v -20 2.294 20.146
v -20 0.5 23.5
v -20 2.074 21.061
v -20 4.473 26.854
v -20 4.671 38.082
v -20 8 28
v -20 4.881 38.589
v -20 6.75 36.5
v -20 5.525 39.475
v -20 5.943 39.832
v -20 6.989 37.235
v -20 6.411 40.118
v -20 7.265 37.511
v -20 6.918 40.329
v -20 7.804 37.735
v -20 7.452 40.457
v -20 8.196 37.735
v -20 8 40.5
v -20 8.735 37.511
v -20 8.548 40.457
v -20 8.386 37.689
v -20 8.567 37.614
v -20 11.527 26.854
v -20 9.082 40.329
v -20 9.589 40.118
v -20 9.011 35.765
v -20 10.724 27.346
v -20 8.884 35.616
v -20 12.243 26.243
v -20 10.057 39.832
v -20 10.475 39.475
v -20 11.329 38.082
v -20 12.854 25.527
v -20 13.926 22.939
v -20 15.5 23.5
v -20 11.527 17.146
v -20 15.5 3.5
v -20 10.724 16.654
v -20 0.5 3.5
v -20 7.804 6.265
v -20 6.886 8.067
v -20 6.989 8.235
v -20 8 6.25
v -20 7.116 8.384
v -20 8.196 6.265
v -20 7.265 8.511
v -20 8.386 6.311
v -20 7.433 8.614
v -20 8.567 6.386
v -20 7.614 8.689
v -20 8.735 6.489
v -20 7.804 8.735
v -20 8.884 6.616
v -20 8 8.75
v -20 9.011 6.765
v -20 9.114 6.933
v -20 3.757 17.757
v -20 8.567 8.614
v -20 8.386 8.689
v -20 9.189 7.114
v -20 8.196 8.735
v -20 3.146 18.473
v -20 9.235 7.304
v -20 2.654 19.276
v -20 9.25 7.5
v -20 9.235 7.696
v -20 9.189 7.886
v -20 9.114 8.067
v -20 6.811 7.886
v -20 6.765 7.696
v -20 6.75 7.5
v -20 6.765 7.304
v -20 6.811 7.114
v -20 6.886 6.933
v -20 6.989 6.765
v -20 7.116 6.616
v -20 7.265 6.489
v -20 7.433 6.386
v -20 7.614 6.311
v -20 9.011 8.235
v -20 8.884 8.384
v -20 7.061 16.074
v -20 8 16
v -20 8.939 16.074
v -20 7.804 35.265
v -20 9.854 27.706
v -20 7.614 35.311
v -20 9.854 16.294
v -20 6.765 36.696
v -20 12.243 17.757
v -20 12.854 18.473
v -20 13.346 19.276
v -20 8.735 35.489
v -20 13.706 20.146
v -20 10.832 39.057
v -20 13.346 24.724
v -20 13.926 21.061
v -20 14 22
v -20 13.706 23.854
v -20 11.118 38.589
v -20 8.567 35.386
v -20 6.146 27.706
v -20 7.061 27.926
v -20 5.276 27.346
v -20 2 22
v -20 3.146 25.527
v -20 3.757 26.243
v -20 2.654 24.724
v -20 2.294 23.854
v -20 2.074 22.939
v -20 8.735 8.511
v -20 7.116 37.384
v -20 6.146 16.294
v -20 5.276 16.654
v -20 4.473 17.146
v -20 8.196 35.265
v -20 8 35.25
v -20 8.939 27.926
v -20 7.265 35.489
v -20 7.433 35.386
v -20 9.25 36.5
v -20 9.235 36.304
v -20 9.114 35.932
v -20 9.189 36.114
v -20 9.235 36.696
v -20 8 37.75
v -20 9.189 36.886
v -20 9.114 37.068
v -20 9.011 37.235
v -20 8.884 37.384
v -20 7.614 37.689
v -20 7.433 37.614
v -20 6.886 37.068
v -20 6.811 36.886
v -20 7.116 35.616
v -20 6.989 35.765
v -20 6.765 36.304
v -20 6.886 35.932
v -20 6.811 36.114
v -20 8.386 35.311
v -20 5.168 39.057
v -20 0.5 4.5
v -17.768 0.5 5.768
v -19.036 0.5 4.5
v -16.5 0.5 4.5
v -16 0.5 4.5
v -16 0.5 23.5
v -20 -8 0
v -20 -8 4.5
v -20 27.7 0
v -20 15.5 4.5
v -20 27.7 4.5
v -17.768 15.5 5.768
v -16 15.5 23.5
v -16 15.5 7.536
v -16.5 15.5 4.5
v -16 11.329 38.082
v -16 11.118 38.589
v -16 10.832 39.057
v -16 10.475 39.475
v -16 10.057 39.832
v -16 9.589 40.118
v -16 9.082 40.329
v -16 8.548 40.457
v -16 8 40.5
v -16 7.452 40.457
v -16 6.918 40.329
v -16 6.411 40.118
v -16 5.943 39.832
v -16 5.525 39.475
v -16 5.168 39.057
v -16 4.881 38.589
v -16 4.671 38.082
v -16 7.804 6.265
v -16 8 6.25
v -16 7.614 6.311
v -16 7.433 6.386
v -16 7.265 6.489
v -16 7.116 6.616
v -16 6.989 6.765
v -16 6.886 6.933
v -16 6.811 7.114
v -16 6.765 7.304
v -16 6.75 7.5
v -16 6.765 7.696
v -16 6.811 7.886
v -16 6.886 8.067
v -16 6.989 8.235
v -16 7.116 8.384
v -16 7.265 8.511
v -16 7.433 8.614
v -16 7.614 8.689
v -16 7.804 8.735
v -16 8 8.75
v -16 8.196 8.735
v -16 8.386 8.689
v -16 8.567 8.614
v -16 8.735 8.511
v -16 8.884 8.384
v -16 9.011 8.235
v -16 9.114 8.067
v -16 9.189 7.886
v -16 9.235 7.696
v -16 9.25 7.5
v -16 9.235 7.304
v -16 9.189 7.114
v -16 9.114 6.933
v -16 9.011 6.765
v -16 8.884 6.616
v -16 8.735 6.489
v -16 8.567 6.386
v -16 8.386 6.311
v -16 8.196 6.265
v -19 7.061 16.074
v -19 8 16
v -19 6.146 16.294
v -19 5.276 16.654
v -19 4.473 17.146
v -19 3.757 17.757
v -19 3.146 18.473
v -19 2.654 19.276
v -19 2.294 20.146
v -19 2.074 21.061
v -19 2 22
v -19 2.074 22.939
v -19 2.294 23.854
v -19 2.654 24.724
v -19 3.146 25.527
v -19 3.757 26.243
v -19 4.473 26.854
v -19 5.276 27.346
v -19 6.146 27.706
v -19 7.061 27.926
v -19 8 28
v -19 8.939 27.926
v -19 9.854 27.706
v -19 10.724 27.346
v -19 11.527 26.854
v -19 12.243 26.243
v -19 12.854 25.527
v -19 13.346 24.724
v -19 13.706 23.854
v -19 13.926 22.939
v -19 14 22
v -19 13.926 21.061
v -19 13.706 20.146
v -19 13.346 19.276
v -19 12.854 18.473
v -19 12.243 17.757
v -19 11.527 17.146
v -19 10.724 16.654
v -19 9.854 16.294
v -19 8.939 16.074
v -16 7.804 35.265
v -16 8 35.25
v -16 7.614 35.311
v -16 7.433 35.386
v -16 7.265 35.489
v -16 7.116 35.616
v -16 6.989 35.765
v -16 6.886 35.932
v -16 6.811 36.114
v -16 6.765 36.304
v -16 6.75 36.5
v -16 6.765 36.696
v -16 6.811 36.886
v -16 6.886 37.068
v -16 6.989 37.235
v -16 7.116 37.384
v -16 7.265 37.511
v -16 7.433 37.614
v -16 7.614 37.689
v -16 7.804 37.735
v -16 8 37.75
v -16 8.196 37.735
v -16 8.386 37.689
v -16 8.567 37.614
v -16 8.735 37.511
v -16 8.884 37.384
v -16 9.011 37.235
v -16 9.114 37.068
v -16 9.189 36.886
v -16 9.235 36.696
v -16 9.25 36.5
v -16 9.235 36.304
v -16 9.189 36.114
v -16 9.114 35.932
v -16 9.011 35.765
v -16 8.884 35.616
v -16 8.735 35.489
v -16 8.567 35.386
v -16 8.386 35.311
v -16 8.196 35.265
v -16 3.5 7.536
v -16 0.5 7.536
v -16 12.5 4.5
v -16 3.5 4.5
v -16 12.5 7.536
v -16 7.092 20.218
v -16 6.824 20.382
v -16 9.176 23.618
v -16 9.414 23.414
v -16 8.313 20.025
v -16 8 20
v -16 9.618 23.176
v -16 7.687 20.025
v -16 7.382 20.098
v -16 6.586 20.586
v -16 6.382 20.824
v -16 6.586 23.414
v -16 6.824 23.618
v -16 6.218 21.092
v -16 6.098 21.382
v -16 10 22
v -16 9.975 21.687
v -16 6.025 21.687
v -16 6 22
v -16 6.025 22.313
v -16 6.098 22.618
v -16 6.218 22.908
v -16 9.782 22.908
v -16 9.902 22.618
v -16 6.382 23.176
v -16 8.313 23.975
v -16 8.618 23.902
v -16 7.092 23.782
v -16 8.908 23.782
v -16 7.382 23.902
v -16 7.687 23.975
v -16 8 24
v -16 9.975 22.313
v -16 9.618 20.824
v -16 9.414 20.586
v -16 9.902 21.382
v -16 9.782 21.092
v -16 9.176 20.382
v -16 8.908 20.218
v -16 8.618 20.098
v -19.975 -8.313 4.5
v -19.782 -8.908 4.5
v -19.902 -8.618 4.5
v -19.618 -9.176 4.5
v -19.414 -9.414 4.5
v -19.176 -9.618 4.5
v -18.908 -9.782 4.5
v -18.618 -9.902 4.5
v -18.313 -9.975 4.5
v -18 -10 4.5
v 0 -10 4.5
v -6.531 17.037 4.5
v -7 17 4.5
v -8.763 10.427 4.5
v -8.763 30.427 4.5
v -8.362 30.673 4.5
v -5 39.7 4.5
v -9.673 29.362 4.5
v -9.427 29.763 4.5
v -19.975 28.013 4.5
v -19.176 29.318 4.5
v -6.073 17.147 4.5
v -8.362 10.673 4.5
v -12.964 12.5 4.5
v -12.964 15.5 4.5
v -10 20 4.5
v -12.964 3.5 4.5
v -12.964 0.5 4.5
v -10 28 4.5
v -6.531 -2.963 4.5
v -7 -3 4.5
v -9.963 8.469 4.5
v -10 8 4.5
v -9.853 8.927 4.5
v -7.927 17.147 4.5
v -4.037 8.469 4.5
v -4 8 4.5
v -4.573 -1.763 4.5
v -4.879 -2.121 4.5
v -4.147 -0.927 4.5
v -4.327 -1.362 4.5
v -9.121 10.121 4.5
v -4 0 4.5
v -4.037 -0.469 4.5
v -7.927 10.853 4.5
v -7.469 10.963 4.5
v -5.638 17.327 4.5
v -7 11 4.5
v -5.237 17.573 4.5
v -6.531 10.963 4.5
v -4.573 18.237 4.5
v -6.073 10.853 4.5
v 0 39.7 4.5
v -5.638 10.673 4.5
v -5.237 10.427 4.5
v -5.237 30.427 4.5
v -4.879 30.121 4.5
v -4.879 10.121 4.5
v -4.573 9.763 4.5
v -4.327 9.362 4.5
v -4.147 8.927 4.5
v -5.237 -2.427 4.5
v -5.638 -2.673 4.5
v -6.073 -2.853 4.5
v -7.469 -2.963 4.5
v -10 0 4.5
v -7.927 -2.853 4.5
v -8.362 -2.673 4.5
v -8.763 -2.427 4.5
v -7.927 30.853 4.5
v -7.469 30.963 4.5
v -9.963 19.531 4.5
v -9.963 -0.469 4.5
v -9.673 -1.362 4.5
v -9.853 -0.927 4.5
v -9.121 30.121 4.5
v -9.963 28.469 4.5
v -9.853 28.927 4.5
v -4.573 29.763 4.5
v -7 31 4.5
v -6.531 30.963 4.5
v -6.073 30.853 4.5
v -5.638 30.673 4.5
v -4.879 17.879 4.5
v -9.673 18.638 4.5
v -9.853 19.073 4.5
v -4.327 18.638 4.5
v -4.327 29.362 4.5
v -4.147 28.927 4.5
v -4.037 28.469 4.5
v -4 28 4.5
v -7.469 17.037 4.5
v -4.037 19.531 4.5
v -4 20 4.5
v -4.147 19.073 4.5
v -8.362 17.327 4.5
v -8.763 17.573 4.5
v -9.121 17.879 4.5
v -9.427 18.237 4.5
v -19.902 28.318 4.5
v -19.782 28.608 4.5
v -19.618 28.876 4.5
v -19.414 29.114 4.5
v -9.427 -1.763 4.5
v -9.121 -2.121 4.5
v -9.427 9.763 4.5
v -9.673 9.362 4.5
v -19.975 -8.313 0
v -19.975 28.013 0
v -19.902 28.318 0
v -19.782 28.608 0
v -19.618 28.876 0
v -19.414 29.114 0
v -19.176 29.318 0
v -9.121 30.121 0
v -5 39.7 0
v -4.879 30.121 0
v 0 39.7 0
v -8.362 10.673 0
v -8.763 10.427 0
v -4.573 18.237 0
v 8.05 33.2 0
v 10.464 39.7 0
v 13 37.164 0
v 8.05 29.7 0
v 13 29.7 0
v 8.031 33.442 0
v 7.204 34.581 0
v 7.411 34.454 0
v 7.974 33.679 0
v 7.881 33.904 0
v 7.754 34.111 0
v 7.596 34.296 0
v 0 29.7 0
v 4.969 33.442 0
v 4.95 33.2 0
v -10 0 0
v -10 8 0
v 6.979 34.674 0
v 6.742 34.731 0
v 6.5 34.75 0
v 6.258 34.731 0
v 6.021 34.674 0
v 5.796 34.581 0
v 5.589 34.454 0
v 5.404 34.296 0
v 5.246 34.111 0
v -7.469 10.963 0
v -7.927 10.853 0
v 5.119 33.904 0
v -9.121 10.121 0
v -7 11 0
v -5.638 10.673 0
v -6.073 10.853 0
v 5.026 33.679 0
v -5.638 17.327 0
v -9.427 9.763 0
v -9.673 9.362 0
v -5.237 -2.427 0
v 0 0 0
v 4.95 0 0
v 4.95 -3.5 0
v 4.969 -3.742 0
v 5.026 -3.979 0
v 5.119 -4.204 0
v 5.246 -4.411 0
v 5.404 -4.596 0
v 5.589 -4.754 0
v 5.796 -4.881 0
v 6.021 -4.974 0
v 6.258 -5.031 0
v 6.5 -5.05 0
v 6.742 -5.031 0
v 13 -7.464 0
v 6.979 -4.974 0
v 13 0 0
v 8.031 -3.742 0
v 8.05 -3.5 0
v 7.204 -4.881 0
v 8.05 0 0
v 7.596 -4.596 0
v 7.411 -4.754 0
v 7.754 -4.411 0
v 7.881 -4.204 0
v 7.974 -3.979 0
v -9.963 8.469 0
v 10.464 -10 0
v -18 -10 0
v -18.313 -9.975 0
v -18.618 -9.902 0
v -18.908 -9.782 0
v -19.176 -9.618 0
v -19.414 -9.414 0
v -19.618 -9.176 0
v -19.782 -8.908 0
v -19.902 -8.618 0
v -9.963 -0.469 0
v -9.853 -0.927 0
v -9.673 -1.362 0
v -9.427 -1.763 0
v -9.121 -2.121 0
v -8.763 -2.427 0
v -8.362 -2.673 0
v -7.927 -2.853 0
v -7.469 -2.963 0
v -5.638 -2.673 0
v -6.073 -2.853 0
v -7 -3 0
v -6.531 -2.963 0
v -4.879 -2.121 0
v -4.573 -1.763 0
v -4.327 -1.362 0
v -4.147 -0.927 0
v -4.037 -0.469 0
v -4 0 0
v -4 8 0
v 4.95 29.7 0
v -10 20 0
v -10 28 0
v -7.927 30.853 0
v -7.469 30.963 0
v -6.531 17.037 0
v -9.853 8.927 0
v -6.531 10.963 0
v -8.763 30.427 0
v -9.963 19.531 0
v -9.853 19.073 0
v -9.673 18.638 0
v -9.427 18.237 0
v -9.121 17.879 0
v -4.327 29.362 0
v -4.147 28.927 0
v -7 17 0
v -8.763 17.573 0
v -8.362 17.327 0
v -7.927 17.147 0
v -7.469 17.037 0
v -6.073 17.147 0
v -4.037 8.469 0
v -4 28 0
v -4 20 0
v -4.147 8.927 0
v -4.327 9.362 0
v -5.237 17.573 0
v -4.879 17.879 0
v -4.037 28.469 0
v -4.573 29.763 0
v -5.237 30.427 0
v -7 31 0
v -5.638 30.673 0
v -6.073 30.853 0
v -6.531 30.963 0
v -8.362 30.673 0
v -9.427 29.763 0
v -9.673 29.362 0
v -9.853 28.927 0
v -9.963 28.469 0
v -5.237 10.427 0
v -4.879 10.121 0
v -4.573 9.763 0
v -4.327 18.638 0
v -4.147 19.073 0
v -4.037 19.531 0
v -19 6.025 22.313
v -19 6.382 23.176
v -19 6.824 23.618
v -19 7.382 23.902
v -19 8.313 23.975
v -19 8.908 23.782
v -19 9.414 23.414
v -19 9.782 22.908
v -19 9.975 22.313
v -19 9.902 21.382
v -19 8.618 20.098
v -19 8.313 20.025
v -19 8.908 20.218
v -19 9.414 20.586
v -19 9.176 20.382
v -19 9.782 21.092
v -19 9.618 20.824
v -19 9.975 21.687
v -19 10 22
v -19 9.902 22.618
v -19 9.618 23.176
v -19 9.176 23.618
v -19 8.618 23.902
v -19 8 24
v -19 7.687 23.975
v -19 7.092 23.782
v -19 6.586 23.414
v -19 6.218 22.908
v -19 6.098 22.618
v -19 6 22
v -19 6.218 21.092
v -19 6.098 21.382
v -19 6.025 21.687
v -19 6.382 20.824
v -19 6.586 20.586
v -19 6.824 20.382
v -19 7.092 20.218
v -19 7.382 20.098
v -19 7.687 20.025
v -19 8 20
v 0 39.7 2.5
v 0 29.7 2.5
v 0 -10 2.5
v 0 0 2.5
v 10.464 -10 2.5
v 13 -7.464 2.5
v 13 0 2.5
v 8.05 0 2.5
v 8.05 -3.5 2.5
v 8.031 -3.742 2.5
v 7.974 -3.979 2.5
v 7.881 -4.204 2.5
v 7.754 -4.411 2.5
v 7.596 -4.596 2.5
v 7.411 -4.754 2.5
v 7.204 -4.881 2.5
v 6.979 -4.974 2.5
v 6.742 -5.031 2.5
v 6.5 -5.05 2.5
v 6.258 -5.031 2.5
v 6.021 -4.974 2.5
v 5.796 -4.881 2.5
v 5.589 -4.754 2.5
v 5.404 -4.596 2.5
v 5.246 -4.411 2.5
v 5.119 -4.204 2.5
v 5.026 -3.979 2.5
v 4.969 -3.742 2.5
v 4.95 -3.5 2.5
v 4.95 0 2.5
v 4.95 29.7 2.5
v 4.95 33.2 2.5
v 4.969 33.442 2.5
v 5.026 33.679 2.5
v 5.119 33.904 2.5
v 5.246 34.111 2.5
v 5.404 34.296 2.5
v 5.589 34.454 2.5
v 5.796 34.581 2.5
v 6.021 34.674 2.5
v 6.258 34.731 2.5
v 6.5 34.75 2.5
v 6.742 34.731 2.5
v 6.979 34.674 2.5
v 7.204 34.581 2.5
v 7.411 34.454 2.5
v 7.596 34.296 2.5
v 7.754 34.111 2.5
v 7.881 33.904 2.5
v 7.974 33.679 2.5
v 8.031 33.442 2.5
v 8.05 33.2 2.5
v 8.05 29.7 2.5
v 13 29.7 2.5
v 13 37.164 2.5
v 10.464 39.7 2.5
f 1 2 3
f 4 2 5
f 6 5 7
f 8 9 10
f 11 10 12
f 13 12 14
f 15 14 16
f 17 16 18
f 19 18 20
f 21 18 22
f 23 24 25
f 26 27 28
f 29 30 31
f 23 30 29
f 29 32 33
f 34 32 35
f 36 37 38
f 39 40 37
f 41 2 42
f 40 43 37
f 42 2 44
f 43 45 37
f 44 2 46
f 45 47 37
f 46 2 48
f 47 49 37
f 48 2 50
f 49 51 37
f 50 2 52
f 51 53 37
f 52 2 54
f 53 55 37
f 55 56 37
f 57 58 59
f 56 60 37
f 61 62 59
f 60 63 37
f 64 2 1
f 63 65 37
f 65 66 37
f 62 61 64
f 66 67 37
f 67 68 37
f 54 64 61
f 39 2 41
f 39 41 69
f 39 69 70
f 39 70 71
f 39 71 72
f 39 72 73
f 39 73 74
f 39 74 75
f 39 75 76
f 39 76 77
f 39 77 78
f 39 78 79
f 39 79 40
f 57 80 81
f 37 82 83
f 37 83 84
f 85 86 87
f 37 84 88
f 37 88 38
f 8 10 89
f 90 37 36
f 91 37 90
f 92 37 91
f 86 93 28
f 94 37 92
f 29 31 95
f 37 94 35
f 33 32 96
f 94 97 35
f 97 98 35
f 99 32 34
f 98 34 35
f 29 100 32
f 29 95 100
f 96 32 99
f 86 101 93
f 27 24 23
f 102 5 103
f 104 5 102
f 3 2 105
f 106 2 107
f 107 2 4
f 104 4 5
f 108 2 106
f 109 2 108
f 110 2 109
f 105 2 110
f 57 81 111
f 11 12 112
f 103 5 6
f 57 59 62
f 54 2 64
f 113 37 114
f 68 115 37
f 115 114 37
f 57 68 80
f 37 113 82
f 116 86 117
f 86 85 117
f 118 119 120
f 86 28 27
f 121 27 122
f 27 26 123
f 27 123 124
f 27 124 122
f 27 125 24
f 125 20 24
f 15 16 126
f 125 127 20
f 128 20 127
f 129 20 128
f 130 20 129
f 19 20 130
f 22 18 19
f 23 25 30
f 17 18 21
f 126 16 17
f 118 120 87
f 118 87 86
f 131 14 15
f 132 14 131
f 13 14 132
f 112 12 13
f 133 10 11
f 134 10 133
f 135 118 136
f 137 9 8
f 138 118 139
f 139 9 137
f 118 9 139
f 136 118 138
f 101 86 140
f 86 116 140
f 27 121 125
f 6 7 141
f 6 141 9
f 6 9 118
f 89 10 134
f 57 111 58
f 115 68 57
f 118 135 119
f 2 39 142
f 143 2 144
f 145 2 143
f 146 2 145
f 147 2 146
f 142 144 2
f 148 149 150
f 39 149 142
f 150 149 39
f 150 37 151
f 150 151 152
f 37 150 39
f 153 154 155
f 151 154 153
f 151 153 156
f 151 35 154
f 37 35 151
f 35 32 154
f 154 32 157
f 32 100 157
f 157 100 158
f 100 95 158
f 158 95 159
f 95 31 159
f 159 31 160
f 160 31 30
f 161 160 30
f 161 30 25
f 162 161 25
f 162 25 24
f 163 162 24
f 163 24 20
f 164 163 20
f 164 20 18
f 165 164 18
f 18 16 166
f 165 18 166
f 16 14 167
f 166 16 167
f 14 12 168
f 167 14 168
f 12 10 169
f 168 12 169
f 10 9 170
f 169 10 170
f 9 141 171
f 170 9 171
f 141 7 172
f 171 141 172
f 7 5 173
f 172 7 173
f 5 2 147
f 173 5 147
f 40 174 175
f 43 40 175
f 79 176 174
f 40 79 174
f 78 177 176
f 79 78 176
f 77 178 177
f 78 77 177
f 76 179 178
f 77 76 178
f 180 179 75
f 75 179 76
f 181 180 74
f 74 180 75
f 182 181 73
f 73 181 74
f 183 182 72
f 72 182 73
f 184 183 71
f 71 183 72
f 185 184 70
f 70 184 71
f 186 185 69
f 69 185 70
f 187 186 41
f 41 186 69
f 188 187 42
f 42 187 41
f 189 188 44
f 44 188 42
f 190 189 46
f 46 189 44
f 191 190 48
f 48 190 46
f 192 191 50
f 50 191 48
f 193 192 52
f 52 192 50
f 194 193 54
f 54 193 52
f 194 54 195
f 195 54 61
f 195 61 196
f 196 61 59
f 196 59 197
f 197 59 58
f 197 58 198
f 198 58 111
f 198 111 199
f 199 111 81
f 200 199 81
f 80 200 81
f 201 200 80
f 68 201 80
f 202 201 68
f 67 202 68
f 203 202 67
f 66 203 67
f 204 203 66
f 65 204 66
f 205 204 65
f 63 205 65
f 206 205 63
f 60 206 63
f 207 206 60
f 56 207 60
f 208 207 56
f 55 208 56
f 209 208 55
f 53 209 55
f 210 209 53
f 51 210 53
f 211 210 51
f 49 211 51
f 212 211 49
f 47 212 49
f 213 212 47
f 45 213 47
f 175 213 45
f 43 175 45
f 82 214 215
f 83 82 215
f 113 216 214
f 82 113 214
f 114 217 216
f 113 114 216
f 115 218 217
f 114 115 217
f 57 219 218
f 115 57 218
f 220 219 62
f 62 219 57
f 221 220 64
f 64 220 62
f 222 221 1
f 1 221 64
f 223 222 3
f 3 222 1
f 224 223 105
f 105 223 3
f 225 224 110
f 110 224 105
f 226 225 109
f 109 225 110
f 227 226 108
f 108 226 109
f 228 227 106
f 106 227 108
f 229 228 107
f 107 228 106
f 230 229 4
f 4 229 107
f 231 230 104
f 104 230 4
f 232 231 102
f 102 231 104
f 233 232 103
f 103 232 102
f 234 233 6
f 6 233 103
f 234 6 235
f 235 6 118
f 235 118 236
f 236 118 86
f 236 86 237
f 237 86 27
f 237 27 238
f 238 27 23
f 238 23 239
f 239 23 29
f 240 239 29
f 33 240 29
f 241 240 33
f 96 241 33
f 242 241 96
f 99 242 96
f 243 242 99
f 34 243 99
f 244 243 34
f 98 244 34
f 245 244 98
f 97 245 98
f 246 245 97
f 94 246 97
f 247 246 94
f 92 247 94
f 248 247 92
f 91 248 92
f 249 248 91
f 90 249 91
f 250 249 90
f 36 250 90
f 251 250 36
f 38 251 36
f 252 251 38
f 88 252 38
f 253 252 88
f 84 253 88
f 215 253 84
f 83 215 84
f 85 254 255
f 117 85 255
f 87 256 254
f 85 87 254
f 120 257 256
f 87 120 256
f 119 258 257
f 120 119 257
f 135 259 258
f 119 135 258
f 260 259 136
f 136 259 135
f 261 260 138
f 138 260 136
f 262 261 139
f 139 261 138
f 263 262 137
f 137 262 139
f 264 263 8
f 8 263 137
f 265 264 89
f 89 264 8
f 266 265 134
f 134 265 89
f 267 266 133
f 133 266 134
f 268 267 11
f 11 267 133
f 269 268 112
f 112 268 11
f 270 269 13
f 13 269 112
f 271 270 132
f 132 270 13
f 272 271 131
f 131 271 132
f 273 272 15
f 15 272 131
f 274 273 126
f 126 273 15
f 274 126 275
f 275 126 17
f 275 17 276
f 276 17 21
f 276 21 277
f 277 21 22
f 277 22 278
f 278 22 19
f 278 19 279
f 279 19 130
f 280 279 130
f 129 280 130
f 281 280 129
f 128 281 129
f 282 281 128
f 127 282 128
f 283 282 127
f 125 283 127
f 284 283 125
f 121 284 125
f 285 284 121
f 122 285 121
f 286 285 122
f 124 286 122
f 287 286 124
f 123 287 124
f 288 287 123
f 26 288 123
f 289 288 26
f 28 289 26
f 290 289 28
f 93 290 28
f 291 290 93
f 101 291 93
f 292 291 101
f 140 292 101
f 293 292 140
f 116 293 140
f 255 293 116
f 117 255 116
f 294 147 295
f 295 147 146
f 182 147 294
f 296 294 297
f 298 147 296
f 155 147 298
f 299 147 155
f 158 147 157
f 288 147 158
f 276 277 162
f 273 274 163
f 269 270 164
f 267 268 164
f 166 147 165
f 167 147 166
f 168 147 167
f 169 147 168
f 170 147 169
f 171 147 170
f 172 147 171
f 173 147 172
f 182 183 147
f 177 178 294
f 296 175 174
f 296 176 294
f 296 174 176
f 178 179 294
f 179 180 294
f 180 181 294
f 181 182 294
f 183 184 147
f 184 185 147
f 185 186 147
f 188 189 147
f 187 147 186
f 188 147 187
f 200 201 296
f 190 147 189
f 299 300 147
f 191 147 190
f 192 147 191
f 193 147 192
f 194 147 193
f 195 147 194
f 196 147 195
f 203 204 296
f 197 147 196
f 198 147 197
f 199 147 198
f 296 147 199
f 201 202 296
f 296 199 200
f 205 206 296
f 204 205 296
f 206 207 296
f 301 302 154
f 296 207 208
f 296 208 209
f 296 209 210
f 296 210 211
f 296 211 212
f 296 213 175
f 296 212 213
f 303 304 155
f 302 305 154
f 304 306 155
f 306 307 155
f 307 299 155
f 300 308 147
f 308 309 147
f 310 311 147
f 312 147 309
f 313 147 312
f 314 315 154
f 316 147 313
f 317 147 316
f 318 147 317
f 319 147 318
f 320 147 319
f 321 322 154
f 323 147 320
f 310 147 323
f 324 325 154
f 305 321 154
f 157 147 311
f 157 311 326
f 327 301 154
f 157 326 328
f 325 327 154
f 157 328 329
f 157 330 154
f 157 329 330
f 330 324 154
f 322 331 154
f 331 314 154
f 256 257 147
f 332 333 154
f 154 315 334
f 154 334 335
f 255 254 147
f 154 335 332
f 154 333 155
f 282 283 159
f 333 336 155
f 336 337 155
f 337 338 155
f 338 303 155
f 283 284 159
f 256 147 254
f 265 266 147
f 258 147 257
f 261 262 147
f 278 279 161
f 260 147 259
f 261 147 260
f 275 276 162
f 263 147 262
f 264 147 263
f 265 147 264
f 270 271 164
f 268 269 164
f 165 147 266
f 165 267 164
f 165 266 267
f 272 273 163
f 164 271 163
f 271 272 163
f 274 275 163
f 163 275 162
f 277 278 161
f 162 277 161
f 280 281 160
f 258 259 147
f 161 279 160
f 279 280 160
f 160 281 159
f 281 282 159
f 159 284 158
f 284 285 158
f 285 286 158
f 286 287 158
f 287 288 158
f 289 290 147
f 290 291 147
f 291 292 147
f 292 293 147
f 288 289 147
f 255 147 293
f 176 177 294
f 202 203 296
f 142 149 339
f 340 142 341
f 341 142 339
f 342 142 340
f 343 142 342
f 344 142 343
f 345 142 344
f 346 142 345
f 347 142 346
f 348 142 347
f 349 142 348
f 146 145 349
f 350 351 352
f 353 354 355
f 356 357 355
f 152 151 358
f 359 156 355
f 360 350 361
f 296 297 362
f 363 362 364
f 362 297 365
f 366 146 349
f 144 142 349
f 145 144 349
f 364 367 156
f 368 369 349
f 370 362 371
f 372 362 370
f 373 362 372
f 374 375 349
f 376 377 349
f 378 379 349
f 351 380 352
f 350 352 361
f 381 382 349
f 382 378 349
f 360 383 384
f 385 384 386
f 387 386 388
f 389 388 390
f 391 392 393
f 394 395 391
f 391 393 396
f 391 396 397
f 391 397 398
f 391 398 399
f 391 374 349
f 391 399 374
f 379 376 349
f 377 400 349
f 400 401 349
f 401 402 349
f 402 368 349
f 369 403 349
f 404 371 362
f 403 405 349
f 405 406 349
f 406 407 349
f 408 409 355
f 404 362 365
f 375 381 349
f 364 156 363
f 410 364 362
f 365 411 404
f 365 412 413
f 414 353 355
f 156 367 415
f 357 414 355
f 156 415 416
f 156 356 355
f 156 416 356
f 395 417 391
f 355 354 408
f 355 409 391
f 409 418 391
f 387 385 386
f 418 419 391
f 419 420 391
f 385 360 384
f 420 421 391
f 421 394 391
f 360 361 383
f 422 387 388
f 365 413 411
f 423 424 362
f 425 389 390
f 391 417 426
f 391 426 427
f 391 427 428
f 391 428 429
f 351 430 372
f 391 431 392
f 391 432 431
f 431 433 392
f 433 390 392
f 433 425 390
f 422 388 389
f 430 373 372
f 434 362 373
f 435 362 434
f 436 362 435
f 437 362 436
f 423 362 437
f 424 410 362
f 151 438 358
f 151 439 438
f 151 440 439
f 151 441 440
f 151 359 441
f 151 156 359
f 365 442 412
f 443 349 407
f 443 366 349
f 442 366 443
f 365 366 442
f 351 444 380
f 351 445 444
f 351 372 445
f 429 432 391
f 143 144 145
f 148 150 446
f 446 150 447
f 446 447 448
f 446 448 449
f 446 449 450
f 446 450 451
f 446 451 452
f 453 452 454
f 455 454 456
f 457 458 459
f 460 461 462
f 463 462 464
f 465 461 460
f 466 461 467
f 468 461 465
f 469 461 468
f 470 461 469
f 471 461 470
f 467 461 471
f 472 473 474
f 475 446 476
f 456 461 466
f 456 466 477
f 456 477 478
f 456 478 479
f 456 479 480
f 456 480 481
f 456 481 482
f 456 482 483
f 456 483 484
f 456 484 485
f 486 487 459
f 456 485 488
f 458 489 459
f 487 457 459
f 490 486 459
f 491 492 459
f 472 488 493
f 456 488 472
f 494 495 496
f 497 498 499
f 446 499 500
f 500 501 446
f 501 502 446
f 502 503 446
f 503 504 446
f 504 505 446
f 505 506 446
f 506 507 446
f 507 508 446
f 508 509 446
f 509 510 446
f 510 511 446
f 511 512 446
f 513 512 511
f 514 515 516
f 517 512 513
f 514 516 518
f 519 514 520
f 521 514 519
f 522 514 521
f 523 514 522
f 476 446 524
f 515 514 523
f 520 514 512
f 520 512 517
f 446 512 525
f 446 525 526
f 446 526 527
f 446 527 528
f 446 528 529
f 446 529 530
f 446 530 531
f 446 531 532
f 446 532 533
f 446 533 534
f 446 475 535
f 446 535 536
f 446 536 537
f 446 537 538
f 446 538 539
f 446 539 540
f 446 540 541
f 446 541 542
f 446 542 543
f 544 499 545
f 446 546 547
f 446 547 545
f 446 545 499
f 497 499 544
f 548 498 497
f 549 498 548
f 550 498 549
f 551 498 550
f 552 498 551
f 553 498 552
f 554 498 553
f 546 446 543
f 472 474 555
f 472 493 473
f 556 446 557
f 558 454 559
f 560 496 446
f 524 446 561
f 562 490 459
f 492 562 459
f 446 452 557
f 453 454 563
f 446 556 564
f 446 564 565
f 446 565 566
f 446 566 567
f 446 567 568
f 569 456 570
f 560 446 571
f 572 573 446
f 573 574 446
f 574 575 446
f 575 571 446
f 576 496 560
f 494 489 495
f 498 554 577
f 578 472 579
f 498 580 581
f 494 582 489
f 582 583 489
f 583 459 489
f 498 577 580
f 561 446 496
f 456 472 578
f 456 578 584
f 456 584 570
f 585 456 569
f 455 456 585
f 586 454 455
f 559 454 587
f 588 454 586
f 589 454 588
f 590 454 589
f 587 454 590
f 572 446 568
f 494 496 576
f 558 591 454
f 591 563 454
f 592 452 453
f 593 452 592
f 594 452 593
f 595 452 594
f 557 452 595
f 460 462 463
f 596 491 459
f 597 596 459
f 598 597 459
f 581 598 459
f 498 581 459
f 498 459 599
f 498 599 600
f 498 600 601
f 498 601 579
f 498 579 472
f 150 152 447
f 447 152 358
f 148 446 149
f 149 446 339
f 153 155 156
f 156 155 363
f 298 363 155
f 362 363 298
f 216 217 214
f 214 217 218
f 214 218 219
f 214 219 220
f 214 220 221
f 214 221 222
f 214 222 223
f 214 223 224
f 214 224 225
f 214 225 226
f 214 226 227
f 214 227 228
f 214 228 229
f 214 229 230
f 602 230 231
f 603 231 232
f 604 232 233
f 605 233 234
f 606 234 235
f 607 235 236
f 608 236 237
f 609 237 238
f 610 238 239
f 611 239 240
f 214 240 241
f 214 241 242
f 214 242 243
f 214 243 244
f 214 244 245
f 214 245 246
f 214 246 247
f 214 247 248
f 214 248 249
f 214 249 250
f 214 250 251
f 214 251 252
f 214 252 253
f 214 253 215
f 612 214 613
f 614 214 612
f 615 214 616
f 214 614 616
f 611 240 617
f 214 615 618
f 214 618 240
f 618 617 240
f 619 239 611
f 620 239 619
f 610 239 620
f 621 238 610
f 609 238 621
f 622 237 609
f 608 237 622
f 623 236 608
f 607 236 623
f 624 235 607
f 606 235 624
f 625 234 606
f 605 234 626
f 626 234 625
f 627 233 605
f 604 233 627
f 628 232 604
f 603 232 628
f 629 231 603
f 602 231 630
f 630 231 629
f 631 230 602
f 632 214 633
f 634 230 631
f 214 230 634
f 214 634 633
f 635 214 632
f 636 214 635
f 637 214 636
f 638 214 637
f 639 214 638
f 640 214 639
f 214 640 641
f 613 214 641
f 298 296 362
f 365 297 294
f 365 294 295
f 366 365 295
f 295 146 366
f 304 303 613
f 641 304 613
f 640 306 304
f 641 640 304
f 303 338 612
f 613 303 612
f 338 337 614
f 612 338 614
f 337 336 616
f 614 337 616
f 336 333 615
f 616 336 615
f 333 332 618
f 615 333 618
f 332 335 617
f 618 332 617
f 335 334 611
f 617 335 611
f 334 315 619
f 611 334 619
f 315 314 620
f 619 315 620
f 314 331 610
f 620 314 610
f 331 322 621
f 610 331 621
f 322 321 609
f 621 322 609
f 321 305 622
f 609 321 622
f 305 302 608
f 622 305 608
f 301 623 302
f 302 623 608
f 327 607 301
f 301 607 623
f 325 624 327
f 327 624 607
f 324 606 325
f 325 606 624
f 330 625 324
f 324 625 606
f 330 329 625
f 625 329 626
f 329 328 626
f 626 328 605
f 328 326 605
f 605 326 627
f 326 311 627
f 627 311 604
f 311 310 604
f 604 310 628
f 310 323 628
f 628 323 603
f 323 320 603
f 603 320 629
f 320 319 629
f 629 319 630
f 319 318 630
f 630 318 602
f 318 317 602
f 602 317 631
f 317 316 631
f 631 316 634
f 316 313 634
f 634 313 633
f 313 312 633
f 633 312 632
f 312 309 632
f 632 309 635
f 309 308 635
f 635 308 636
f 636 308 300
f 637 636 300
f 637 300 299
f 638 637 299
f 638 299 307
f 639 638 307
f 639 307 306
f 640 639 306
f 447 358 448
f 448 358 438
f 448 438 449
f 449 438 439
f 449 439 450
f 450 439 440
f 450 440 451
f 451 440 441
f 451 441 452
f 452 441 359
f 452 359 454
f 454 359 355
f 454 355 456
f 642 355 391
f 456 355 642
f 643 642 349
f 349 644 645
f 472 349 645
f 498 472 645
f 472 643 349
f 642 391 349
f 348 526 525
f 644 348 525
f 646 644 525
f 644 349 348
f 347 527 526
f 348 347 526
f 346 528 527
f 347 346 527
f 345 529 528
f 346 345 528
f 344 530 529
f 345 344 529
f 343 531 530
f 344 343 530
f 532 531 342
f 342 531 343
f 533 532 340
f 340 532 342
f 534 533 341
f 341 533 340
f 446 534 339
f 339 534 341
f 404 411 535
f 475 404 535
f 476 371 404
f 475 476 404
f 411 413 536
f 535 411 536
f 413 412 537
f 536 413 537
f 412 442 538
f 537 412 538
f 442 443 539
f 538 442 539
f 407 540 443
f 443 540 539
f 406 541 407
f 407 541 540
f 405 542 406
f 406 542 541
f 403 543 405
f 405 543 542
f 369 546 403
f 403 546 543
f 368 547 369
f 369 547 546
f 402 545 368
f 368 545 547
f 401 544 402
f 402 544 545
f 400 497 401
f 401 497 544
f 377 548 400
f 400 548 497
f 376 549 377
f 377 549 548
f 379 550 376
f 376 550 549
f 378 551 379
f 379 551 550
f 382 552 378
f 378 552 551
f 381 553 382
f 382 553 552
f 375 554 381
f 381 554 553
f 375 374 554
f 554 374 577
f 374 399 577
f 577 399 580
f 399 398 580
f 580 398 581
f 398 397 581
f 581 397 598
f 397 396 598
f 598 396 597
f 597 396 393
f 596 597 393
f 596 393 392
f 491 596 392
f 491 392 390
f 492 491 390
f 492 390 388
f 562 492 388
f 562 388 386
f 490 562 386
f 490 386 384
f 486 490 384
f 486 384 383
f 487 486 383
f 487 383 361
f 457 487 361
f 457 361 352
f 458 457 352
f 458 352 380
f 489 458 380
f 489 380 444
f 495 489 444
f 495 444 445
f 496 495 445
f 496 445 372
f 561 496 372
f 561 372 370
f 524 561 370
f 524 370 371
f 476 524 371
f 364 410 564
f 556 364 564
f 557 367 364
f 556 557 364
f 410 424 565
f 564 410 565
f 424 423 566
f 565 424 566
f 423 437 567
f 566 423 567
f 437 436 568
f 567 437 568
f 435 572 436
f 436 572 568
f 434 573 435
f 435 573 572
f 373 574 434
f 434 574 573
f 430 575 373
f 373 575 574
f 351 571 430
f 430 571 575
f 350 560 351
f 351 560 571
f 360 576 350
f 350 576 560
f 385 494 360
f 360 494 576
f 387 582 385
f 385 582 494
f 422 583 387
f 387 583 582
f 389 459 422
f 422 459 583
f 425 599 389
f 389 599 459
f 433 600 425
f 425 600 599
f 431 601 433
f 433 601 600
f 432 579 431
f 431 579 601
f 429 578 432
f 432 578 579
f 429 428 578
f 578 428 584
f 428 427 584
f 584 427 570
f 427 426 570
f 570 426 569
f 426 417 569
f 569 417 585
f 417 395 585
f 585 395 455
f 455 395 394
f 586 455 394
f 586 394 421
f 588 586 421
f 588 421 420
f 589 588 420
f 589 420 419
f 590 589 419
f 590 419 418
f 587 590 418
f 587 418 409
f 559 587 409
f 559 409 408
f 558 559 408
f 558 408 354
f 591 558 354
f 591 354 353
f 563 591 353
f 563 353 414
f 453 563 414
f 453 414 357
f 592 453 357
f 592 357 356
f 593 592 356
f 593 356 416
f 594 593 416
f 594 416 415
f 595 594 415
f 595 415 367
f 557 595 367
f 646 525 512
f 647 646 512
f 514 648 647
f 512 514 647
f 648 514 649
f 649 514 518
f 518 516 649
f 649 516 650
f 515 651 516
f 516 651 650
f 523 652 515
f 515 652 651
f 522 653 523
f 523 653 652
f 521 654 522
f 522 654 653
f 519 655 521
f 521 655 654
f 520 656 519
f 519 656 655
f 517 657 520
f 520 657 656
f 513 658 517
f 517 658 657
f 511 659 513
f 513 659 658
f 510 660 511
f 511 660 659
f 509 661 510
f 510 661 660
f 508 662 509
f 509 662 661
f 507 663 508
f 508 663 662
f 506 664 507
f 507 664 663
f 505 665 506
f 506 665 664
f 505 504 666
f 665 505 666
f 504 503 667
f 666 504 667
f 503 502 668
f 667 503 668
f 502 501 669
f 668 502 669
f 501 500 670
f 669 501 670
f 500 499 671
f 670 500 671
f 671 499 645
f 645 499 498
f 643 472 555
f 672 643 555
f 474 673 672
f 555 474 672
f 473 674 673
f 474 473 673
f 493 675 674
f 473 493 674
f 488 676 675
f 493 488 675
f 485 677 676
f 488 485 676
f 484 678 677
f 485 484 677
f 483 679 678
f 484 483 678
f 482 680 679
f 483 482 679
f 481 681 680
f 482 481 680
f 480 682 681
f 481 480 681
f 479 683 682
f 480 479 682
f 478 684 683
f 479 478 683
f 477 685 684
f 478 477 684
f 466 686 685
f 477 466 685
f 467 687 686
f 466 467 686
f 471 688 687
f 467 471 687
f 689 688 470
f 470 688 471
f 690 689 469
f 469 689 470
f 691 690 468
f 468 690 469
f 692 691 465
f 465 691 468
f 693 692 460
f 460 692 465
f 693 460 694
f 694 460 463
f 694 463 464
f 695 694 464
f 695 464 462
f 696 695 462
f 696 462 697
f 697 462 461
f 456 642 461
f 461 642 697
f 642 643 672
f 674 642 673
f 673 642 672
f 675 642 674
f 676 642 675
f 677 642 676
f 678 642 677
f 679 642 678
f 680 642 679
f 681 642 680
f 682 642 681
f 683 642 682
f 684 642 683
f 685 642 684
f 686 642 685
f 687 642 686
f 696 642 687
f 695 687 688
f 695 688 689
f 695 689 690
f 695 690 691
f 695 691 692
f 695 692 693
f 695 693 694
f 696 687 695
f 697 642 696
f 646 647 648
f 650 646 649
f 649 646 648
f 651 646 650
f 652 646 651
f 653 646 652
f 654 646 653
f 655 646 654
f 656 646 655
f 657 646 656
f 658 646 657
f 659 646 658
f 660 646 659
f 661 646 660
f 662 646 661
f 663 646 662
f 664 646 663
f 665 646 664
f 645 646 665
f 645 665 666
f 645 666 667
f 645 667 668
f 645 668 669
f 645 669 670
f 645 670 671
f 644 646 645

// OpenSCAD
$fn = 40;




union() {
	mirror([0,1,0])
	serverHolder();

	translate([0,29.7,0])
	serverHolder();

	difference() {
		hull() {
			translate([-18,-8,0]) cylinder(h = 4.5, r=2);
			translate([-18,27.7,0]) cylinder(h = 4.5, r=2);
			translate([-5,-10,0])
			cube(size=[5,20+29.7,4.5]);
		}

		translate([-7,0,-1])
		rotate(a=[0,0,90])
		slit(8,3,10);

		translate([-7,20,-1])
		rotate(a=[0,0,90])
		slit(8,3,10);
	}
	


	translate([-16,2,4])
	rotate(a=[90,45,0])
	cube(size=[5,5,3],center=true);

	translate([-16,14,4])
	rotate(a=[90,45,0])
	cube(size=[5,5,3],center=true);
	

	translate([-16,8,7])
	rotate(a=[0,-90,0])
	difference() {
		hull() {
			translate([30,0,0]) cylinder(h = 4, r=3.5);
			translate([0,0,0]) cylinder(h = 4, r=3.5);

			translate([-3.5,-7.5,0])
			#cube(size=[20,15,4]);
		}
		translate([30/2,0,0]) {
			union() {
				translate([-29/2,0,-1]) cylinder(h = 6, r=(2.5/2));
				translate([0,0,3]) cylinder(h = 2, r=(12/2));
				translate([0,0,-2]) cylinder(h = 10, r=(4/2));
				translate([29/2,0,-1]) cylinder(h = 6, r=(2.5/2));
			}
		}	
	}
}


module serverHolder() {
	difference() {
		#cube(size=[13,10,2.5]);

		#translate([13/2,-8+3.5,0])
		rotate(a=[0,0,90])
		slit(8,3.1/2,3);

		#translate([13.5,10.5,1])
		rotate(a=[0,0,45])
		cube(size=[5,5,5],center=true);	
	}
}



module slit(length,radius,height) {
	hull() {
		translate([length,0,0]) cylinder(h = height, r=radius);
		translate([0,0,0]) cylinder(h = height, r=radius);
	}
}
